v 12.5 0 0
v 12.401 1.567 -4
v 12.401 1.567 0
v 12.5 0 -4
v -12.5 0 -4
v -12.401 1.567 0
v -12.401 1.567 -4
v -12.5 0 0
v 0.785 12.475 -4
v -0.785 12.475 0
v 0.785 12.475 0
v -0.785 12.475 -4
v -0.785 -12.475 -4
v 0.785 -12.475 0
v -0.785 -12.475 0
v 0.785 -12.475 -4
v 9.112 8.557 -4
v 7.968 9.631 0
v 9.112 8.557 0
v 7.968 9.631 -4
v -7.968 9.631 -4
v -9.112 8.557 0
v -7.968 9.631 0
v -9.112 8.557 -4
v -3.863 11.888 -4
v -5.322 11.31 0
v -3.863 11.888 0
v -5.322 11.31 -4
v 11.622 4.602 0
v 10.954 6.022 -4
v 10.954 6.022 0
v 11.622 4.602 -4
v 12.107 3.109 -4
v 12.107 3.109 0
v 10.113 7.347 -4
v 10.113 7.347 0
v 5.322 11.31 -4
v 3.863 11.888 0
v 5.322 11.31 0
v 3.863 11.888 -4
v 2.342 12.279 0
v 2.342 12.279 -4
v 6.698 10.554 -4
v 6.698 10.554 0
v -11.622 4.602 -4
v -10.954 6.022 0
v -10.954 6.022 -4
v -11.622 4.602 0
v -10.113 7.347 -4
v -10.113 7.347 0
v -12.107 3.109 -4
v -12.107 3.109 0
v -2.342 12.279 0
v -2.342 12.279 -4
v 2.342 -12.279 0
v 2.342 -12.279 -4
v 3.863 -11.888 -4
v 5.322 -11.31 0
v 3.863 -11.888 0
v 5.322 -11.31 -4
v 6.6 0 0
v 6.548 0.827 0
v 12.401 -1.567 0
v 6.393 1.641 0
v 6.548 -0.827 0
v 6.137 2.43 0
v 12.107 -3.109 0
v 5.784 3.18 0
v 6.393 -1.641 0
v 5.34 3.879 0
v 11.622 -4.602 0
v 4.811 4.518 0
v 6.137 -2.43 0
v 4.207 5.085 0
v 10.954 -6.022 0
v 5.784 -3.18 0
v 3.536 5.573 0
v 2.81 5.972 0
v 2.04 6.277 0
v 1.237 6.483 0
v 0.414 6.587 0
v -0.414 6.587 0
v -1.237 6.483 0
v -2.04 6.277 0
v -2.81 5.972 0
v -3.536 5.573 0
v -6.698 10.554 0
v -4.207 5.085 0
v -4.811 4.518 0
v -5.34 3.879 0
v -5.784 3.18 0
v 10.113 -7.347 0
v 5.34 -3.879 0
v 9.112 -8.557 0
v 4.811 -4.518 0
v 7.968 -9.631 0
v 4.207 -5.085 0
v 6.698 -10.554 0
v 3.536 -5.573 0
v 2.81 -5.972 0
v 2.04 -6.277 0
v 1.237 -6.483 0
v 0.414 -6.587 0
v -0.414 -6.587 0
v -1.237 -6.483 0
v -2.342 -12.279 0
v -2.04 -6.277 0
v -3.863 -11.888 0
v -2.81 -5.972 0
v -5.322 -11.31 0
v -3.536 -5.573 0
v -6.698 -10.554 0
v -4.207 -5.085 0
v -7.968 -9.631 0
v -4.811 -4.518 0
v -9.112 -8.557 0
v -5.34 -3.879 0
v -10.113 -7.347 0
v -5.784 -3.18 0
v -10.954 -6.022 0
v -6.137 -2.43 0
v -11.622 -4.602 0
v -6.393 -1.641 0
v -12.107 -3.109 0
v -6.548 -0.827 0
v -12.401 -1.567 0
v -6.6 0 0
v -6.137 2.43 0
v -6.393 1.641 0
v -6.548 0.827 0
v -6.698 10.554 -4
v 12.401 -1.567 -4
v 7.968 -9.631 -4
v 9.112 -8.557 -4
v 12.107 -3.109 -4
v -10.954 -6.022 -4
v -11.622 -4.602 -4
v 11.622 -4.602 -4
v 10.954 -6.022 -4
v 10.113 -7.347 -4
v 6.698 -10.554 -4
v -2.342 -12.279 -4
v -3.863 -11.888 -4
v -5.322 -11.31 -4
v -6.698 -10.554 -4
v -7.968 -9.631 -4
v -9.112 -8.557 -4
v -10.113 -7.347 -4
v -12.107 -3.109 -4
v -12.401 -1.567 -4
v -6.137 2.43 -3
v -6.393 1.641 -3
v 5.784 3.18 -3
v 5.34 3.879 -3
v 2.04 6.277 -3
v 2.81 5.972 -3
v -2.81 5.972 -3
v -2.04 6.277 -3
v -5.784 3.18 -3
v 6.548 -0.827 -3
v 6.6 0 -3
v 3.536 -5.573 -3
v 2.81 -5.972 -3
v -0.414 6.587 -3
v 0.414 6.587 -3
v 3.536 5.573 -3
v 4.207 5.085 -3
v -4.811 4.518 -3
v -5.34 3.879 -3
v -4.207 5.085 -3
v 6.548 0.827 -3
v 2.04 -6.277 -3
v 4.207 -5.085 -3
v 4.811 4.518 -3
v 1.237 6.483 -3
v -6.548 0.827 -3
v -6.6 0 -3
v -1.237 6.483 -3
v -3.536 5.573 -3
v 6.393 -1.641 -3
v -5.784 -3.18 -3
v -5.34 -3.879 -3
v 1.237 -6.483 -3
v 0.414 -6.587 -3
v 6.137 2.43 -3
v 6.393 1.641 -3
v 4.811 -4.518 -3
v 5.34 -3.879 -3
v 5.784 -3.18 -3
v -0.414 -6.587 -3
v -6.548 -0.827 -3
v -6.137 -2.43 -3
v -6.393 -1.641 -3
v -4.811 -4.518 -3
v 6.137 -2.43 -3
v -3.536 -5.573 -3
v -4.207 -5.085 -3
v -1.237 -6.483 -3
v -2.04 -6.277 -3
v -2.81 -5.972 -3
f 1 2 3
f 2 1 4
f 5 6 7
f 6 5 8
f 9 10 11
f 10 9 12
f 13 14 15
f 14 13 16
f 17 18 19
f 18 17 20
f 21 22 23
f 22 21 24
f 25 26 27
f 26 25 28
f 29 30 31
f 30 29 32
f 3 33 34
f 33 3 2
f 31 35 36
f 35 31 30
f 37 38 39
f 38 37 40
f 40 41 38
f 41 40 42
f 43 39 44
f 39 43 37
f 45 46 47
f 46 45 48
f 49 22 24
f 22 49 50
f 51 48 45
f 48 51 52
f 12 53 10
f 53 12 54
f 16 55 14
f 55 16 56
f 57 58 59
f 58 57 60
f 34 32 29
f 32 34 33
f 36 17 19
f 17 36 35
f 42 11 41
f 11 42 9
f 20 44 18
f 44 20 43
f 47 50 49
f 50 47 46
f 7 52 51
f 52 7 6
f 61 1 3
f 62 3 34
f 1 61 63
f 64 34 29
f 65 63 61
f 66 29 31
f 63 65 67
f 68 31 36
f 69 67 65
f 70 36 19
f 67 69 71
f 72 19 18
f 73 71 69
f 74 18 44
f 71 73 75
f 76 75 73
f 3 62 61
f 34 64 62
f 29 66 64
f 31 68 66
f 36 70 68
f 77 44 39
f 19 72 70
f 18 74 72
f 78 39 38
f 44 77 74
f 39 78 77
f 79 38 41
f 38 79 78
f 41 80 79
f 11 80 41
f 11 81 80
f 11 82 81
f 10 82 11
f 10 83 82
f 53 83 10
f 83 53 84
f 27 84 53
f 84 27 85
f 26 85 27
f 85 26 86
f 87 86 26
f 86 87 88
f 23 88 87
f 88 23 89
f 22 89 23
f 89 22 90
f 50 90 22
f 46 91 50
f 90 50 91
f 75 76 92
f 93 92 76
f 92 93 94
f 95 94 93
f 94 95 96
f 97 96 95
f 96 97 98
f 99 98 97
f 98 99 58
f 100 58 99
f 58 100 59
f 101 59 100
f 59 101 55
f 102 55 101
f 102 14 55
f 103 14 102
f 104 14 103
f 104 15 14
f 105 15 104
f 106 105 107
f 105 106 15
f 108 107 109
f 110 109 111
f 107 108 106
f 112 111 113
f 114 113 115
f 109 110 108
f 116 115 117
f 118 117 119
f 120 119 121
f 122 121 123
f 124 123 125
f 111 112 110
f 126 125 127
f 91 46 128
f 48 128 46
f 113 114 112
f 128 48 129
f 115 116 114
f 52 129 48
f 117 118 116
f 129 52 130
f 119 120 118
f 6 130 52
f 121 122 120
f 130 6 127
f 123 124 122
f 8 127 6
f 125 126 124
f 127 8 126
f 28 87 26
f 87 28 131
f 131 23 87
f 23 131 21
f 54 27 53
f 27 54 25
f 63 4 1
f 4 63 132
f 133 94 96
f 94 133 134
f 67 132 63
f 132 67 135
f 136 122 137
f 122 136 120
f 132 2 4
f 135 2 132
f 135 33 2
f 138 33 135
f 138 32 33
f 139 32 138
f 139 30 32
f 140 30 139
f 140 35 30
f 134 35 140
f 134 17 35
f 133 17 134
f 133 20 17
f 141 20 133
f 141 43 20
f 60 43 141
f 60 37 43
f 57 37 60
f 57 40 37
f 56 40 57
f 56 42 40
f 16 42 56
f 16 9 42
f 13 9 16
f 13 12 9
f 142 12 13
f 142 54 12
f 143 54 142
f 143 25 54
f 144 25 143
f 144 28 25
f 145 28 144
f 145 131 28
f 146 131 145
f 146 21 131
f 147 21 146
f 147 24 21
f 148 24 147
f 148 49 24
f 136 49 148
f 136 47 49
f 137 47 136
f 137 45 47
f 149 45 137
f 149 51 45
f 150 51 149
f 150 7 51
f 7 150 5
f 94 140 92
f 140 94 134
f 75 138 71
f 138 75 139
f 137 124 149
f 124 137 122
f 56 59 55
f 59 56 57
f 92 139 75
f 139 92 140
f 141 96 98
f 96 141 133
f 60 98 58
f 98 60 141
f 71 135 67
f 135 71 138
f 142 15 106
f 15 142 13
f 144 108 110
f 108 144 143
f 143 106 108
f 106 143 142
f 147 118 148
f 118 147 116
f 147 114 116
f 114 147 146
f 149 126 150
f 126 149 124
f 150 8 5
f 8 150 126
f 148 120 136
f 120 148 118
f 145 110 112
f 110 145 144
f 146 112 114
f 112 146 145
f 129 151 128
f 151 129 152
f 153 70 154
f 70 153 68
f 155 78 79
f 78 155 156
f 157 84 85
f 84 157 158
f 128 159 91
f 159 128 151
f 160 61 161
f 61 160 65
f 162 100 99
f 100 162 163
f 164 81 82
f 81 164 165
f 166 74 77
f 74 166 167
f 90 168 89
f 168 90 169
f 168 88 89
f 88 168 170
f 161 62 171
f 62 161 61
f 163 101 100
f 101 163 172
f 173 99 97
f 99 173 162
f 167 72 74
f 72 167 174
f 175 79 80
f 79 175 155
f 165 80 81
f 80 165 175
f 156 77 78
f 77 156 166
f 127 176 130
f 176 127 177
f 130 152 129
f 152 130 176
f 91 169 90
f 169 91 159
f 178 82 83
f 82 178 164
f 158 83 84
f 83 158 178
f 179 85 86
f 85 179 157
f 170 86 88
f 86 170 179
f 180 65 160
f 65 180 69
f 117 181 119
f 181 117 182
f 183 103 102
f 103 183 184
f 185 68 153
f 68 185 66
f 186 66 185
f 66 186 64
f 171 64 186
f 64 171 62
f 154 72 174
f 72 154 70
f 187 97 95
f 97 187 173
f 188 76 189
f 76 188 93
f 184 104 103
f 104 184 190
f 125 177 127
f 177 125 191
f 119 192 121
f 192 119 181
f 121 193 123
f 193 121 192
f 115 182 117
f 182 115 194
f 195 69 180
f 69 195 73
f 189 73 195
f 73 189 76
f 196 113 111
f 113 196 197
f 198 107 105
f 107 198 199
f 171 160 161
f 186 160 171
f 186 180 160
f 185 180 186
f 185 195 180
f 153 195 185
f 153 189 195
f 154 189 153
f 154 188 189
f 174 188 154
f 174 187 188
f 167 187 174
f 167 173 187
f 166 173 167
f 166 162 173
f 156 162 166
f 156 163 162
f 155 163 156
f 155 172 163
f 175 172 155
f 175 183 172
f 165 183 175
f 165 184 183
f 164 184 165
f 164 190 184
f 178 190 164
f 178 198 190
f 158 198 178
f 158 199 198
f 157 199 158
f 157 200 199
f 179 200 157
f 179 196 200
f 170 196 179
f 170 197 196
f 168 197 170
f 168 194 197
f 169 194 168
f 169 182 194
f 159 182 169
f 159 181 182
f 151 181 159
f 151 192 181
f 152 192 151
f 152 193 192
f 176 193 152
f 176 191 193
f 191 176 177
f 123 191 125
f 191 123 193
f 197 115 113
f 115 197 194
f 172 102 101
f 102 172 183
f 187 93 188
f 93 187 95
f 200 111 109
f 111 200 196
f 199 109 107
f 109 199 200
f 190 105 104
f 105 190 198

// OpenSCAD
$fn = 50;


difference() {
	union() {
		translate(v = [0, 0, -4.0000000000]) {
			cylinder(h = 4, r = 12.5000000000);
		}
	}
	union() {
		#translate(v = [0, 0, -3.0000000000]) {
			cylinder(h = 3, r = 6.6000000000);
		}
	}
}
